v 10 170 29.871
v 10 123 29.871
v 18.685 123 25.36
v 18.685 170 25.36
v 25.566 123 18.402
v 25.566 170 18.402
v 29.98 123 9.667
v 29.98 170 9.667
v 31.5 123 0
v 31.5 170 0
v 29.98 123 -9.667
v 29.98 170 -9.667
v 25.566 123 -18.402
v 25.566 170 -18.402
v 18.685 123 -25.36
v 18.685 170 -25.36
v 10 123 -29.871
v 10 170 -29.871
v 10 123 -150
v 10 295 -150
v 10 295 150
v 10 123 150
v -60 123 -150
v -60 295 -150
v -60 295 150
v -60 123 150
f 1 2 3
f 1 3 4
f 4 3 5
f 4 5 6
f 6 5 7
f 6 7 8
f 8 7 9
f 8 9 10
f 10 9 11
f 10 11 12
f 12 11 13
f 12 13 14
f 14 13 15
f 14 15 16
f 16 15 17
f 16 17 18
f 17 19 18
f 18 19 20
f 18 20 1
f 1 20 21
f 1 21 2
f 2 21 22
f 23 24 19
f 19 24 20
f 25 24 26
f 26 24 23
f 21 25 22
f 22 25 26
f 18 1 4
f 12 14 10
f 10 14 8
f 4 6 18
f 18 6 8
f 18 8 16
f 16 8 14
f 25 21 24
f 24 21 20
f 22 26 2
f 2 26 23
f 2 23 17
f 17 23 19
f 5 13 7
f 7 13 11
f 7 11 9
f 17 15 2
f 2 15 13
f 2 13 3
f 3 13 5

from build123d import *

# Parameters (mm, degrees)
SKETCH1_R                = 31.5
BOSS_EXTRUDE1_DEPTH      = 170
BOSS_EXTRUDE2_DEPTH      = 125
BOSS_EXTRUDE2_DEPTH_BACK = 130
SKETCH2_W                = 70
SKETCH2_H                = 300
SKETCH2_2_W              = 70
SKETCH2_2_H              = 300
BOSS_EXTRUDE3_DEPTH      = 10
SKETCH4_W                = 315.689390272
SKETCH4_H                = 433.788608214
CUT_EXTRUDE2_DEPTH       = 123


with BuildPart() as part:
    # Sketch1 → Boss-Extrude1 (new body)
    with BuildSketch(Plane(origin=(0, 0, 0), x_dir=(1, 0, 0), z_dir=(0, 1, 0))):
        Circle(SKETCH1_R)
    extrude(amount=BOSS_EXTRUDE1_DEPTH)

    # Sketch2 → Boss-Extrude2 (add, two sides: drawn at the far end of the back side and taken through both)
    with BuildSketch(Plane(origin=(0, 170, 0), x_dir=(1, 0, 0), z_dir=(0, 1, 0)).offset(-BOSS_EXTRUDE2_DEPTH_BACK)):
        with Locations((-25, 0)):
            Rectangle(SKETCH2_W, SKETCH2_H)
    extrude(amount=BOSS_EXTRUDE2_DEPTH + BOSS_EXTRUDE2_DEPTH_BACK)

    # Sketch2<2> → Boss-Extrude3 (add)
    with BuildSketch(Plane(origin=(0, 170, 0), x_dir=(1, 0, 0), z_dir=(0, 1, 0))):
        with Locations((-25, 0)):
            Rectangle(SKETCH2_2_W, SKETCH2_2_H)
    extrude(amount=BOSS_EXTRUDE3_DEPTH)

    # Sketch4 → Cut-Extrude2 (cut)
    with BuildSketch(Plane.XZ):
        Rectangle(SKETCH4_W, SKETCH4_H)
    extrude(amount=-CUT_EXTRUDE2_DEPTH, mode=Mode.SUBTRACT)


solid = part.part
